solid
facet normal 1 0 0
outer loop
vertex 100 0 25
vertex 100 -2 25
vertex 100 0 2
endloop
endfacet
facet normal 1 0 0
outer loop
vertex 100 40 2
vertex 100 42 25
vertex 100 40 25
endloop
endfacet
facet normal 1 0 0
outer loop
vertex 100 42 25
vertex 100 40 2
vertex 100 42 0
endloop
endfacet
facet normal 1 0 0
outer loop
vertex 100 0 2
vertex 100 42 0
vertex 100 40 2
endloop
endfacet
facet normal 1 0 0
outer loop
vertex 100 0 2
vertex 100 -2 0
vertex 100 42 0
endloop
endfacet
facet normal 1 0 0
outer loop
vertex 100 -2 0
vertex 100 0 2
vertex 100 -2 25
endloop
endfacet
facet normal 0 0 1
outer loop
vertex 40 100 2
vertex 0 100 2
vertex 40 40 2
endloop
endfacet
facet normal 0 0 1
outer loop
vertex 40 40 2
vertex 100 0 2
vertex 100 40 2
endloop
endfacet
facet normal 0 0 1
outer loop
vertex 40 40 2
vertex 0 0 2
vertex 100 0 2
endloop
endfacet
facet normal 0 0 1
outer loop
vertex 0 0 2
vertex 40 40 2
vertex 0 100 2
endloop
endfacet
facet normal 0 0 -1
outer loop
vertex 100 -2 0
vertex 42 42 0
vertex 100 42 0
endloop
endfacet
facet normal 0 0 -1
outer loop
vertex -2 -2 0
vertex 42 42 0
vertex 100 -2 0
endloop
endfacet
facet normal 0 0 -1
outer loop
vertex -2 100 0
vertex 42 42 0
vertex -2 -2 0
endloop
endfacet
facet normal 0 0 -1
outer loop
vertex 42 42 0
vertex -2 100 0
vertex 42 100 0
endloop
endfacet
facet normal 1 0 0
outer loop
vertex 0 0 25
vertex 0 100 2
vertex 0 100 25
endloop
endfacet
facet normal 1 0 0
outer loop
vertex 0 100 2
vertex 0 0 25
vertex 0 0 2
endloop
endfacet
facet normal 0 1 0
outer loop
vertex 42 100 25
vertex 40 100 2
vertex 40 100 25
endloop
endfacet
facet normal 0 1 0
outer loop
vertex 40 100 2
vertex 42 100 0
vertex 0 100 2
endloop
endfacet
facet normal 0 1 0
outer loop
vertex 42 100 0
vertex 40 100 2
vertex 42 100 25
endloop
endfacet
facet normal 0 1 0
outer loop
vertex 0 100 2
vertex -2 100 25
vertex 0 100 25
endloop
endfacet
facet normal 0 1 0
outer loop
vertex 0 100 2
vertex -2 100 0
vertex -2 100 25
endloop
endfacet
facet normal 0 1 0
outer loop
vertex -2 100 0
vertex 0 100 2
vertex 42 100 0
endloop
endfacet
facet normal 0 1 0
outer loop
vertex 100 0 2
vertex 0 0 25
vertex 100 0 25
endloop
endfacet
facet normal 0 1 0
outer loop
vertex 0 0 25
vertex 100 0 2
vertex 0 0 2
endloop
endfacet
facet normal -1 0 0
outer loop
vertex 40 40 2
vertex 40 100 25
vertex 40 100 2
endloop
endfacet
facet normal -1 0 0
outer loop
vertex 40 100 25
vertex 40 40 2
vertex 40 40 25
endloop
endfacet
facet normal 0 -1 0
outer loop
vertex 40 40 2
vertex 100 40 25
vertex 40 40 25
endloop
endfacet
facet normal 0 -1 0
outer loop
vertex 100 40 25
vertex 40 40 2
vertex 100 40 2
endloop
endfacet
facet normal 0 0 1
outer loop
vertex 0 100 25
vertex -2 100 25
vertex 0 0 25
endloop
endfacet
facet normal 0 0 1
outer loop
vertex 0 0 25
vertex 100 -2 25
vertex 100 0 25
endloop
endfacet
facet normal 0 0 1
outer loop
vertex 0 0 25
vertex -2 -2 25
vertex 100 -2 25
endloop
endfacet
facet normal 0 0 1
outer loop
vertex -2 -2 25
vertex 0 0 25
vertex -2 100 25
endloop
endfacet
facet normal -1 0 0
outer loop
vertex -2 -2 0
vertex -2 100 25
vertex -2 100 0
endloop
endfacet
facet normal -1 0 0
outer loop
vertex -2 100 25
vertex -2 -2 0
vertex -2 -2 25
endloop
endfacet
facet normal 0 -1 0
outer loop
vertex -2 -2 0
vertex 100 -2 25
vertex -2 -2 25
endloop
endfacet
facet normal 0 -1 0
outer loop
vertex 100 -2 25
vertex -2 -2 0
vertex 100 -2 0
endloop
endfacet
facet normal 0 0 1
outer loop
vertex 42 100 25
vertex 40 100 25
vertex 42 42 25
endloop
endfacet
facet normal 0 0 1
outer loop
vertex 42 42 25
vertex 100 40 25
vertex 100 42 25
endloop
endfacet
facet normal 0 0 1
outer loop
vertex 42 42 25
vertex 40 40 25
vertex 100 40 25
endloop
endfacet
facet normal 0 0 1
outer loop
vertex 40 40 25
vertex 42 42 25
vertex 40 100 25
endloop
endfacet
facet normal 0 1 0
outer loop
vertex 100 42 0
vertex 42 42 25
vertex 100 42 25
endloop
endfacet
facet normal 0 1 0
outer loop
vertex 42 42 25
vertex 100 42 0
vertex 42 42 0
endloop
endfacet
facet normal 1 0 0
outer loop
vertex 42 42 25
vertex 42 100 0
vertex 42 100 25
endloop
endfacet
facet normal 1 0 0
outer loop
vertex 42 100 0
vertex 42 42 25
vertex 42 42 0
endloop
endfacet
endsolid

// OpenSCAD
$fn = 128;

wh = 25.0; // wall-height
wt = 2.0; // wall-thickness
fw = 40.0; // filterwidth
owl = 100.0; // inner-wall-length

iwl = owl - fw; // outer-wall-length

// main

//floor
translate([owl/2,owl/2,wt/2])
difference() {
  cube([owl, owl, wt], center=true);
  translate([fw,fw,0])
    cube([owl, owl, wt], center=true);
}

// Outer wall
  // bottom outerwall
bwox = (owl-wt)/2;
bwoy = -wt/2;
translate([bwox, bwoy, wh/2])
  cube([owl+wt, wt, wh], center=true); // +wt to get the corner

lwox = -wt/2;
lwoy = owl/2;
translate([lwox, lwoy, wh/2])
  cube([wt,owl,wh], center=true);

// Inner wall
  //top wall
twox = fw + iwl/2;
twoy = fw + wt/2;
translate([ twox, twoy, wh/2])
  cube([iwl, wt, wh], center=true);

rwox = fw + wt/2;
rwoy = fw + iwl/2 + wt/2;
translate([ rwox, rwoy, wh/2])
  cube([wt,iwl - wt, wh], center=true);
